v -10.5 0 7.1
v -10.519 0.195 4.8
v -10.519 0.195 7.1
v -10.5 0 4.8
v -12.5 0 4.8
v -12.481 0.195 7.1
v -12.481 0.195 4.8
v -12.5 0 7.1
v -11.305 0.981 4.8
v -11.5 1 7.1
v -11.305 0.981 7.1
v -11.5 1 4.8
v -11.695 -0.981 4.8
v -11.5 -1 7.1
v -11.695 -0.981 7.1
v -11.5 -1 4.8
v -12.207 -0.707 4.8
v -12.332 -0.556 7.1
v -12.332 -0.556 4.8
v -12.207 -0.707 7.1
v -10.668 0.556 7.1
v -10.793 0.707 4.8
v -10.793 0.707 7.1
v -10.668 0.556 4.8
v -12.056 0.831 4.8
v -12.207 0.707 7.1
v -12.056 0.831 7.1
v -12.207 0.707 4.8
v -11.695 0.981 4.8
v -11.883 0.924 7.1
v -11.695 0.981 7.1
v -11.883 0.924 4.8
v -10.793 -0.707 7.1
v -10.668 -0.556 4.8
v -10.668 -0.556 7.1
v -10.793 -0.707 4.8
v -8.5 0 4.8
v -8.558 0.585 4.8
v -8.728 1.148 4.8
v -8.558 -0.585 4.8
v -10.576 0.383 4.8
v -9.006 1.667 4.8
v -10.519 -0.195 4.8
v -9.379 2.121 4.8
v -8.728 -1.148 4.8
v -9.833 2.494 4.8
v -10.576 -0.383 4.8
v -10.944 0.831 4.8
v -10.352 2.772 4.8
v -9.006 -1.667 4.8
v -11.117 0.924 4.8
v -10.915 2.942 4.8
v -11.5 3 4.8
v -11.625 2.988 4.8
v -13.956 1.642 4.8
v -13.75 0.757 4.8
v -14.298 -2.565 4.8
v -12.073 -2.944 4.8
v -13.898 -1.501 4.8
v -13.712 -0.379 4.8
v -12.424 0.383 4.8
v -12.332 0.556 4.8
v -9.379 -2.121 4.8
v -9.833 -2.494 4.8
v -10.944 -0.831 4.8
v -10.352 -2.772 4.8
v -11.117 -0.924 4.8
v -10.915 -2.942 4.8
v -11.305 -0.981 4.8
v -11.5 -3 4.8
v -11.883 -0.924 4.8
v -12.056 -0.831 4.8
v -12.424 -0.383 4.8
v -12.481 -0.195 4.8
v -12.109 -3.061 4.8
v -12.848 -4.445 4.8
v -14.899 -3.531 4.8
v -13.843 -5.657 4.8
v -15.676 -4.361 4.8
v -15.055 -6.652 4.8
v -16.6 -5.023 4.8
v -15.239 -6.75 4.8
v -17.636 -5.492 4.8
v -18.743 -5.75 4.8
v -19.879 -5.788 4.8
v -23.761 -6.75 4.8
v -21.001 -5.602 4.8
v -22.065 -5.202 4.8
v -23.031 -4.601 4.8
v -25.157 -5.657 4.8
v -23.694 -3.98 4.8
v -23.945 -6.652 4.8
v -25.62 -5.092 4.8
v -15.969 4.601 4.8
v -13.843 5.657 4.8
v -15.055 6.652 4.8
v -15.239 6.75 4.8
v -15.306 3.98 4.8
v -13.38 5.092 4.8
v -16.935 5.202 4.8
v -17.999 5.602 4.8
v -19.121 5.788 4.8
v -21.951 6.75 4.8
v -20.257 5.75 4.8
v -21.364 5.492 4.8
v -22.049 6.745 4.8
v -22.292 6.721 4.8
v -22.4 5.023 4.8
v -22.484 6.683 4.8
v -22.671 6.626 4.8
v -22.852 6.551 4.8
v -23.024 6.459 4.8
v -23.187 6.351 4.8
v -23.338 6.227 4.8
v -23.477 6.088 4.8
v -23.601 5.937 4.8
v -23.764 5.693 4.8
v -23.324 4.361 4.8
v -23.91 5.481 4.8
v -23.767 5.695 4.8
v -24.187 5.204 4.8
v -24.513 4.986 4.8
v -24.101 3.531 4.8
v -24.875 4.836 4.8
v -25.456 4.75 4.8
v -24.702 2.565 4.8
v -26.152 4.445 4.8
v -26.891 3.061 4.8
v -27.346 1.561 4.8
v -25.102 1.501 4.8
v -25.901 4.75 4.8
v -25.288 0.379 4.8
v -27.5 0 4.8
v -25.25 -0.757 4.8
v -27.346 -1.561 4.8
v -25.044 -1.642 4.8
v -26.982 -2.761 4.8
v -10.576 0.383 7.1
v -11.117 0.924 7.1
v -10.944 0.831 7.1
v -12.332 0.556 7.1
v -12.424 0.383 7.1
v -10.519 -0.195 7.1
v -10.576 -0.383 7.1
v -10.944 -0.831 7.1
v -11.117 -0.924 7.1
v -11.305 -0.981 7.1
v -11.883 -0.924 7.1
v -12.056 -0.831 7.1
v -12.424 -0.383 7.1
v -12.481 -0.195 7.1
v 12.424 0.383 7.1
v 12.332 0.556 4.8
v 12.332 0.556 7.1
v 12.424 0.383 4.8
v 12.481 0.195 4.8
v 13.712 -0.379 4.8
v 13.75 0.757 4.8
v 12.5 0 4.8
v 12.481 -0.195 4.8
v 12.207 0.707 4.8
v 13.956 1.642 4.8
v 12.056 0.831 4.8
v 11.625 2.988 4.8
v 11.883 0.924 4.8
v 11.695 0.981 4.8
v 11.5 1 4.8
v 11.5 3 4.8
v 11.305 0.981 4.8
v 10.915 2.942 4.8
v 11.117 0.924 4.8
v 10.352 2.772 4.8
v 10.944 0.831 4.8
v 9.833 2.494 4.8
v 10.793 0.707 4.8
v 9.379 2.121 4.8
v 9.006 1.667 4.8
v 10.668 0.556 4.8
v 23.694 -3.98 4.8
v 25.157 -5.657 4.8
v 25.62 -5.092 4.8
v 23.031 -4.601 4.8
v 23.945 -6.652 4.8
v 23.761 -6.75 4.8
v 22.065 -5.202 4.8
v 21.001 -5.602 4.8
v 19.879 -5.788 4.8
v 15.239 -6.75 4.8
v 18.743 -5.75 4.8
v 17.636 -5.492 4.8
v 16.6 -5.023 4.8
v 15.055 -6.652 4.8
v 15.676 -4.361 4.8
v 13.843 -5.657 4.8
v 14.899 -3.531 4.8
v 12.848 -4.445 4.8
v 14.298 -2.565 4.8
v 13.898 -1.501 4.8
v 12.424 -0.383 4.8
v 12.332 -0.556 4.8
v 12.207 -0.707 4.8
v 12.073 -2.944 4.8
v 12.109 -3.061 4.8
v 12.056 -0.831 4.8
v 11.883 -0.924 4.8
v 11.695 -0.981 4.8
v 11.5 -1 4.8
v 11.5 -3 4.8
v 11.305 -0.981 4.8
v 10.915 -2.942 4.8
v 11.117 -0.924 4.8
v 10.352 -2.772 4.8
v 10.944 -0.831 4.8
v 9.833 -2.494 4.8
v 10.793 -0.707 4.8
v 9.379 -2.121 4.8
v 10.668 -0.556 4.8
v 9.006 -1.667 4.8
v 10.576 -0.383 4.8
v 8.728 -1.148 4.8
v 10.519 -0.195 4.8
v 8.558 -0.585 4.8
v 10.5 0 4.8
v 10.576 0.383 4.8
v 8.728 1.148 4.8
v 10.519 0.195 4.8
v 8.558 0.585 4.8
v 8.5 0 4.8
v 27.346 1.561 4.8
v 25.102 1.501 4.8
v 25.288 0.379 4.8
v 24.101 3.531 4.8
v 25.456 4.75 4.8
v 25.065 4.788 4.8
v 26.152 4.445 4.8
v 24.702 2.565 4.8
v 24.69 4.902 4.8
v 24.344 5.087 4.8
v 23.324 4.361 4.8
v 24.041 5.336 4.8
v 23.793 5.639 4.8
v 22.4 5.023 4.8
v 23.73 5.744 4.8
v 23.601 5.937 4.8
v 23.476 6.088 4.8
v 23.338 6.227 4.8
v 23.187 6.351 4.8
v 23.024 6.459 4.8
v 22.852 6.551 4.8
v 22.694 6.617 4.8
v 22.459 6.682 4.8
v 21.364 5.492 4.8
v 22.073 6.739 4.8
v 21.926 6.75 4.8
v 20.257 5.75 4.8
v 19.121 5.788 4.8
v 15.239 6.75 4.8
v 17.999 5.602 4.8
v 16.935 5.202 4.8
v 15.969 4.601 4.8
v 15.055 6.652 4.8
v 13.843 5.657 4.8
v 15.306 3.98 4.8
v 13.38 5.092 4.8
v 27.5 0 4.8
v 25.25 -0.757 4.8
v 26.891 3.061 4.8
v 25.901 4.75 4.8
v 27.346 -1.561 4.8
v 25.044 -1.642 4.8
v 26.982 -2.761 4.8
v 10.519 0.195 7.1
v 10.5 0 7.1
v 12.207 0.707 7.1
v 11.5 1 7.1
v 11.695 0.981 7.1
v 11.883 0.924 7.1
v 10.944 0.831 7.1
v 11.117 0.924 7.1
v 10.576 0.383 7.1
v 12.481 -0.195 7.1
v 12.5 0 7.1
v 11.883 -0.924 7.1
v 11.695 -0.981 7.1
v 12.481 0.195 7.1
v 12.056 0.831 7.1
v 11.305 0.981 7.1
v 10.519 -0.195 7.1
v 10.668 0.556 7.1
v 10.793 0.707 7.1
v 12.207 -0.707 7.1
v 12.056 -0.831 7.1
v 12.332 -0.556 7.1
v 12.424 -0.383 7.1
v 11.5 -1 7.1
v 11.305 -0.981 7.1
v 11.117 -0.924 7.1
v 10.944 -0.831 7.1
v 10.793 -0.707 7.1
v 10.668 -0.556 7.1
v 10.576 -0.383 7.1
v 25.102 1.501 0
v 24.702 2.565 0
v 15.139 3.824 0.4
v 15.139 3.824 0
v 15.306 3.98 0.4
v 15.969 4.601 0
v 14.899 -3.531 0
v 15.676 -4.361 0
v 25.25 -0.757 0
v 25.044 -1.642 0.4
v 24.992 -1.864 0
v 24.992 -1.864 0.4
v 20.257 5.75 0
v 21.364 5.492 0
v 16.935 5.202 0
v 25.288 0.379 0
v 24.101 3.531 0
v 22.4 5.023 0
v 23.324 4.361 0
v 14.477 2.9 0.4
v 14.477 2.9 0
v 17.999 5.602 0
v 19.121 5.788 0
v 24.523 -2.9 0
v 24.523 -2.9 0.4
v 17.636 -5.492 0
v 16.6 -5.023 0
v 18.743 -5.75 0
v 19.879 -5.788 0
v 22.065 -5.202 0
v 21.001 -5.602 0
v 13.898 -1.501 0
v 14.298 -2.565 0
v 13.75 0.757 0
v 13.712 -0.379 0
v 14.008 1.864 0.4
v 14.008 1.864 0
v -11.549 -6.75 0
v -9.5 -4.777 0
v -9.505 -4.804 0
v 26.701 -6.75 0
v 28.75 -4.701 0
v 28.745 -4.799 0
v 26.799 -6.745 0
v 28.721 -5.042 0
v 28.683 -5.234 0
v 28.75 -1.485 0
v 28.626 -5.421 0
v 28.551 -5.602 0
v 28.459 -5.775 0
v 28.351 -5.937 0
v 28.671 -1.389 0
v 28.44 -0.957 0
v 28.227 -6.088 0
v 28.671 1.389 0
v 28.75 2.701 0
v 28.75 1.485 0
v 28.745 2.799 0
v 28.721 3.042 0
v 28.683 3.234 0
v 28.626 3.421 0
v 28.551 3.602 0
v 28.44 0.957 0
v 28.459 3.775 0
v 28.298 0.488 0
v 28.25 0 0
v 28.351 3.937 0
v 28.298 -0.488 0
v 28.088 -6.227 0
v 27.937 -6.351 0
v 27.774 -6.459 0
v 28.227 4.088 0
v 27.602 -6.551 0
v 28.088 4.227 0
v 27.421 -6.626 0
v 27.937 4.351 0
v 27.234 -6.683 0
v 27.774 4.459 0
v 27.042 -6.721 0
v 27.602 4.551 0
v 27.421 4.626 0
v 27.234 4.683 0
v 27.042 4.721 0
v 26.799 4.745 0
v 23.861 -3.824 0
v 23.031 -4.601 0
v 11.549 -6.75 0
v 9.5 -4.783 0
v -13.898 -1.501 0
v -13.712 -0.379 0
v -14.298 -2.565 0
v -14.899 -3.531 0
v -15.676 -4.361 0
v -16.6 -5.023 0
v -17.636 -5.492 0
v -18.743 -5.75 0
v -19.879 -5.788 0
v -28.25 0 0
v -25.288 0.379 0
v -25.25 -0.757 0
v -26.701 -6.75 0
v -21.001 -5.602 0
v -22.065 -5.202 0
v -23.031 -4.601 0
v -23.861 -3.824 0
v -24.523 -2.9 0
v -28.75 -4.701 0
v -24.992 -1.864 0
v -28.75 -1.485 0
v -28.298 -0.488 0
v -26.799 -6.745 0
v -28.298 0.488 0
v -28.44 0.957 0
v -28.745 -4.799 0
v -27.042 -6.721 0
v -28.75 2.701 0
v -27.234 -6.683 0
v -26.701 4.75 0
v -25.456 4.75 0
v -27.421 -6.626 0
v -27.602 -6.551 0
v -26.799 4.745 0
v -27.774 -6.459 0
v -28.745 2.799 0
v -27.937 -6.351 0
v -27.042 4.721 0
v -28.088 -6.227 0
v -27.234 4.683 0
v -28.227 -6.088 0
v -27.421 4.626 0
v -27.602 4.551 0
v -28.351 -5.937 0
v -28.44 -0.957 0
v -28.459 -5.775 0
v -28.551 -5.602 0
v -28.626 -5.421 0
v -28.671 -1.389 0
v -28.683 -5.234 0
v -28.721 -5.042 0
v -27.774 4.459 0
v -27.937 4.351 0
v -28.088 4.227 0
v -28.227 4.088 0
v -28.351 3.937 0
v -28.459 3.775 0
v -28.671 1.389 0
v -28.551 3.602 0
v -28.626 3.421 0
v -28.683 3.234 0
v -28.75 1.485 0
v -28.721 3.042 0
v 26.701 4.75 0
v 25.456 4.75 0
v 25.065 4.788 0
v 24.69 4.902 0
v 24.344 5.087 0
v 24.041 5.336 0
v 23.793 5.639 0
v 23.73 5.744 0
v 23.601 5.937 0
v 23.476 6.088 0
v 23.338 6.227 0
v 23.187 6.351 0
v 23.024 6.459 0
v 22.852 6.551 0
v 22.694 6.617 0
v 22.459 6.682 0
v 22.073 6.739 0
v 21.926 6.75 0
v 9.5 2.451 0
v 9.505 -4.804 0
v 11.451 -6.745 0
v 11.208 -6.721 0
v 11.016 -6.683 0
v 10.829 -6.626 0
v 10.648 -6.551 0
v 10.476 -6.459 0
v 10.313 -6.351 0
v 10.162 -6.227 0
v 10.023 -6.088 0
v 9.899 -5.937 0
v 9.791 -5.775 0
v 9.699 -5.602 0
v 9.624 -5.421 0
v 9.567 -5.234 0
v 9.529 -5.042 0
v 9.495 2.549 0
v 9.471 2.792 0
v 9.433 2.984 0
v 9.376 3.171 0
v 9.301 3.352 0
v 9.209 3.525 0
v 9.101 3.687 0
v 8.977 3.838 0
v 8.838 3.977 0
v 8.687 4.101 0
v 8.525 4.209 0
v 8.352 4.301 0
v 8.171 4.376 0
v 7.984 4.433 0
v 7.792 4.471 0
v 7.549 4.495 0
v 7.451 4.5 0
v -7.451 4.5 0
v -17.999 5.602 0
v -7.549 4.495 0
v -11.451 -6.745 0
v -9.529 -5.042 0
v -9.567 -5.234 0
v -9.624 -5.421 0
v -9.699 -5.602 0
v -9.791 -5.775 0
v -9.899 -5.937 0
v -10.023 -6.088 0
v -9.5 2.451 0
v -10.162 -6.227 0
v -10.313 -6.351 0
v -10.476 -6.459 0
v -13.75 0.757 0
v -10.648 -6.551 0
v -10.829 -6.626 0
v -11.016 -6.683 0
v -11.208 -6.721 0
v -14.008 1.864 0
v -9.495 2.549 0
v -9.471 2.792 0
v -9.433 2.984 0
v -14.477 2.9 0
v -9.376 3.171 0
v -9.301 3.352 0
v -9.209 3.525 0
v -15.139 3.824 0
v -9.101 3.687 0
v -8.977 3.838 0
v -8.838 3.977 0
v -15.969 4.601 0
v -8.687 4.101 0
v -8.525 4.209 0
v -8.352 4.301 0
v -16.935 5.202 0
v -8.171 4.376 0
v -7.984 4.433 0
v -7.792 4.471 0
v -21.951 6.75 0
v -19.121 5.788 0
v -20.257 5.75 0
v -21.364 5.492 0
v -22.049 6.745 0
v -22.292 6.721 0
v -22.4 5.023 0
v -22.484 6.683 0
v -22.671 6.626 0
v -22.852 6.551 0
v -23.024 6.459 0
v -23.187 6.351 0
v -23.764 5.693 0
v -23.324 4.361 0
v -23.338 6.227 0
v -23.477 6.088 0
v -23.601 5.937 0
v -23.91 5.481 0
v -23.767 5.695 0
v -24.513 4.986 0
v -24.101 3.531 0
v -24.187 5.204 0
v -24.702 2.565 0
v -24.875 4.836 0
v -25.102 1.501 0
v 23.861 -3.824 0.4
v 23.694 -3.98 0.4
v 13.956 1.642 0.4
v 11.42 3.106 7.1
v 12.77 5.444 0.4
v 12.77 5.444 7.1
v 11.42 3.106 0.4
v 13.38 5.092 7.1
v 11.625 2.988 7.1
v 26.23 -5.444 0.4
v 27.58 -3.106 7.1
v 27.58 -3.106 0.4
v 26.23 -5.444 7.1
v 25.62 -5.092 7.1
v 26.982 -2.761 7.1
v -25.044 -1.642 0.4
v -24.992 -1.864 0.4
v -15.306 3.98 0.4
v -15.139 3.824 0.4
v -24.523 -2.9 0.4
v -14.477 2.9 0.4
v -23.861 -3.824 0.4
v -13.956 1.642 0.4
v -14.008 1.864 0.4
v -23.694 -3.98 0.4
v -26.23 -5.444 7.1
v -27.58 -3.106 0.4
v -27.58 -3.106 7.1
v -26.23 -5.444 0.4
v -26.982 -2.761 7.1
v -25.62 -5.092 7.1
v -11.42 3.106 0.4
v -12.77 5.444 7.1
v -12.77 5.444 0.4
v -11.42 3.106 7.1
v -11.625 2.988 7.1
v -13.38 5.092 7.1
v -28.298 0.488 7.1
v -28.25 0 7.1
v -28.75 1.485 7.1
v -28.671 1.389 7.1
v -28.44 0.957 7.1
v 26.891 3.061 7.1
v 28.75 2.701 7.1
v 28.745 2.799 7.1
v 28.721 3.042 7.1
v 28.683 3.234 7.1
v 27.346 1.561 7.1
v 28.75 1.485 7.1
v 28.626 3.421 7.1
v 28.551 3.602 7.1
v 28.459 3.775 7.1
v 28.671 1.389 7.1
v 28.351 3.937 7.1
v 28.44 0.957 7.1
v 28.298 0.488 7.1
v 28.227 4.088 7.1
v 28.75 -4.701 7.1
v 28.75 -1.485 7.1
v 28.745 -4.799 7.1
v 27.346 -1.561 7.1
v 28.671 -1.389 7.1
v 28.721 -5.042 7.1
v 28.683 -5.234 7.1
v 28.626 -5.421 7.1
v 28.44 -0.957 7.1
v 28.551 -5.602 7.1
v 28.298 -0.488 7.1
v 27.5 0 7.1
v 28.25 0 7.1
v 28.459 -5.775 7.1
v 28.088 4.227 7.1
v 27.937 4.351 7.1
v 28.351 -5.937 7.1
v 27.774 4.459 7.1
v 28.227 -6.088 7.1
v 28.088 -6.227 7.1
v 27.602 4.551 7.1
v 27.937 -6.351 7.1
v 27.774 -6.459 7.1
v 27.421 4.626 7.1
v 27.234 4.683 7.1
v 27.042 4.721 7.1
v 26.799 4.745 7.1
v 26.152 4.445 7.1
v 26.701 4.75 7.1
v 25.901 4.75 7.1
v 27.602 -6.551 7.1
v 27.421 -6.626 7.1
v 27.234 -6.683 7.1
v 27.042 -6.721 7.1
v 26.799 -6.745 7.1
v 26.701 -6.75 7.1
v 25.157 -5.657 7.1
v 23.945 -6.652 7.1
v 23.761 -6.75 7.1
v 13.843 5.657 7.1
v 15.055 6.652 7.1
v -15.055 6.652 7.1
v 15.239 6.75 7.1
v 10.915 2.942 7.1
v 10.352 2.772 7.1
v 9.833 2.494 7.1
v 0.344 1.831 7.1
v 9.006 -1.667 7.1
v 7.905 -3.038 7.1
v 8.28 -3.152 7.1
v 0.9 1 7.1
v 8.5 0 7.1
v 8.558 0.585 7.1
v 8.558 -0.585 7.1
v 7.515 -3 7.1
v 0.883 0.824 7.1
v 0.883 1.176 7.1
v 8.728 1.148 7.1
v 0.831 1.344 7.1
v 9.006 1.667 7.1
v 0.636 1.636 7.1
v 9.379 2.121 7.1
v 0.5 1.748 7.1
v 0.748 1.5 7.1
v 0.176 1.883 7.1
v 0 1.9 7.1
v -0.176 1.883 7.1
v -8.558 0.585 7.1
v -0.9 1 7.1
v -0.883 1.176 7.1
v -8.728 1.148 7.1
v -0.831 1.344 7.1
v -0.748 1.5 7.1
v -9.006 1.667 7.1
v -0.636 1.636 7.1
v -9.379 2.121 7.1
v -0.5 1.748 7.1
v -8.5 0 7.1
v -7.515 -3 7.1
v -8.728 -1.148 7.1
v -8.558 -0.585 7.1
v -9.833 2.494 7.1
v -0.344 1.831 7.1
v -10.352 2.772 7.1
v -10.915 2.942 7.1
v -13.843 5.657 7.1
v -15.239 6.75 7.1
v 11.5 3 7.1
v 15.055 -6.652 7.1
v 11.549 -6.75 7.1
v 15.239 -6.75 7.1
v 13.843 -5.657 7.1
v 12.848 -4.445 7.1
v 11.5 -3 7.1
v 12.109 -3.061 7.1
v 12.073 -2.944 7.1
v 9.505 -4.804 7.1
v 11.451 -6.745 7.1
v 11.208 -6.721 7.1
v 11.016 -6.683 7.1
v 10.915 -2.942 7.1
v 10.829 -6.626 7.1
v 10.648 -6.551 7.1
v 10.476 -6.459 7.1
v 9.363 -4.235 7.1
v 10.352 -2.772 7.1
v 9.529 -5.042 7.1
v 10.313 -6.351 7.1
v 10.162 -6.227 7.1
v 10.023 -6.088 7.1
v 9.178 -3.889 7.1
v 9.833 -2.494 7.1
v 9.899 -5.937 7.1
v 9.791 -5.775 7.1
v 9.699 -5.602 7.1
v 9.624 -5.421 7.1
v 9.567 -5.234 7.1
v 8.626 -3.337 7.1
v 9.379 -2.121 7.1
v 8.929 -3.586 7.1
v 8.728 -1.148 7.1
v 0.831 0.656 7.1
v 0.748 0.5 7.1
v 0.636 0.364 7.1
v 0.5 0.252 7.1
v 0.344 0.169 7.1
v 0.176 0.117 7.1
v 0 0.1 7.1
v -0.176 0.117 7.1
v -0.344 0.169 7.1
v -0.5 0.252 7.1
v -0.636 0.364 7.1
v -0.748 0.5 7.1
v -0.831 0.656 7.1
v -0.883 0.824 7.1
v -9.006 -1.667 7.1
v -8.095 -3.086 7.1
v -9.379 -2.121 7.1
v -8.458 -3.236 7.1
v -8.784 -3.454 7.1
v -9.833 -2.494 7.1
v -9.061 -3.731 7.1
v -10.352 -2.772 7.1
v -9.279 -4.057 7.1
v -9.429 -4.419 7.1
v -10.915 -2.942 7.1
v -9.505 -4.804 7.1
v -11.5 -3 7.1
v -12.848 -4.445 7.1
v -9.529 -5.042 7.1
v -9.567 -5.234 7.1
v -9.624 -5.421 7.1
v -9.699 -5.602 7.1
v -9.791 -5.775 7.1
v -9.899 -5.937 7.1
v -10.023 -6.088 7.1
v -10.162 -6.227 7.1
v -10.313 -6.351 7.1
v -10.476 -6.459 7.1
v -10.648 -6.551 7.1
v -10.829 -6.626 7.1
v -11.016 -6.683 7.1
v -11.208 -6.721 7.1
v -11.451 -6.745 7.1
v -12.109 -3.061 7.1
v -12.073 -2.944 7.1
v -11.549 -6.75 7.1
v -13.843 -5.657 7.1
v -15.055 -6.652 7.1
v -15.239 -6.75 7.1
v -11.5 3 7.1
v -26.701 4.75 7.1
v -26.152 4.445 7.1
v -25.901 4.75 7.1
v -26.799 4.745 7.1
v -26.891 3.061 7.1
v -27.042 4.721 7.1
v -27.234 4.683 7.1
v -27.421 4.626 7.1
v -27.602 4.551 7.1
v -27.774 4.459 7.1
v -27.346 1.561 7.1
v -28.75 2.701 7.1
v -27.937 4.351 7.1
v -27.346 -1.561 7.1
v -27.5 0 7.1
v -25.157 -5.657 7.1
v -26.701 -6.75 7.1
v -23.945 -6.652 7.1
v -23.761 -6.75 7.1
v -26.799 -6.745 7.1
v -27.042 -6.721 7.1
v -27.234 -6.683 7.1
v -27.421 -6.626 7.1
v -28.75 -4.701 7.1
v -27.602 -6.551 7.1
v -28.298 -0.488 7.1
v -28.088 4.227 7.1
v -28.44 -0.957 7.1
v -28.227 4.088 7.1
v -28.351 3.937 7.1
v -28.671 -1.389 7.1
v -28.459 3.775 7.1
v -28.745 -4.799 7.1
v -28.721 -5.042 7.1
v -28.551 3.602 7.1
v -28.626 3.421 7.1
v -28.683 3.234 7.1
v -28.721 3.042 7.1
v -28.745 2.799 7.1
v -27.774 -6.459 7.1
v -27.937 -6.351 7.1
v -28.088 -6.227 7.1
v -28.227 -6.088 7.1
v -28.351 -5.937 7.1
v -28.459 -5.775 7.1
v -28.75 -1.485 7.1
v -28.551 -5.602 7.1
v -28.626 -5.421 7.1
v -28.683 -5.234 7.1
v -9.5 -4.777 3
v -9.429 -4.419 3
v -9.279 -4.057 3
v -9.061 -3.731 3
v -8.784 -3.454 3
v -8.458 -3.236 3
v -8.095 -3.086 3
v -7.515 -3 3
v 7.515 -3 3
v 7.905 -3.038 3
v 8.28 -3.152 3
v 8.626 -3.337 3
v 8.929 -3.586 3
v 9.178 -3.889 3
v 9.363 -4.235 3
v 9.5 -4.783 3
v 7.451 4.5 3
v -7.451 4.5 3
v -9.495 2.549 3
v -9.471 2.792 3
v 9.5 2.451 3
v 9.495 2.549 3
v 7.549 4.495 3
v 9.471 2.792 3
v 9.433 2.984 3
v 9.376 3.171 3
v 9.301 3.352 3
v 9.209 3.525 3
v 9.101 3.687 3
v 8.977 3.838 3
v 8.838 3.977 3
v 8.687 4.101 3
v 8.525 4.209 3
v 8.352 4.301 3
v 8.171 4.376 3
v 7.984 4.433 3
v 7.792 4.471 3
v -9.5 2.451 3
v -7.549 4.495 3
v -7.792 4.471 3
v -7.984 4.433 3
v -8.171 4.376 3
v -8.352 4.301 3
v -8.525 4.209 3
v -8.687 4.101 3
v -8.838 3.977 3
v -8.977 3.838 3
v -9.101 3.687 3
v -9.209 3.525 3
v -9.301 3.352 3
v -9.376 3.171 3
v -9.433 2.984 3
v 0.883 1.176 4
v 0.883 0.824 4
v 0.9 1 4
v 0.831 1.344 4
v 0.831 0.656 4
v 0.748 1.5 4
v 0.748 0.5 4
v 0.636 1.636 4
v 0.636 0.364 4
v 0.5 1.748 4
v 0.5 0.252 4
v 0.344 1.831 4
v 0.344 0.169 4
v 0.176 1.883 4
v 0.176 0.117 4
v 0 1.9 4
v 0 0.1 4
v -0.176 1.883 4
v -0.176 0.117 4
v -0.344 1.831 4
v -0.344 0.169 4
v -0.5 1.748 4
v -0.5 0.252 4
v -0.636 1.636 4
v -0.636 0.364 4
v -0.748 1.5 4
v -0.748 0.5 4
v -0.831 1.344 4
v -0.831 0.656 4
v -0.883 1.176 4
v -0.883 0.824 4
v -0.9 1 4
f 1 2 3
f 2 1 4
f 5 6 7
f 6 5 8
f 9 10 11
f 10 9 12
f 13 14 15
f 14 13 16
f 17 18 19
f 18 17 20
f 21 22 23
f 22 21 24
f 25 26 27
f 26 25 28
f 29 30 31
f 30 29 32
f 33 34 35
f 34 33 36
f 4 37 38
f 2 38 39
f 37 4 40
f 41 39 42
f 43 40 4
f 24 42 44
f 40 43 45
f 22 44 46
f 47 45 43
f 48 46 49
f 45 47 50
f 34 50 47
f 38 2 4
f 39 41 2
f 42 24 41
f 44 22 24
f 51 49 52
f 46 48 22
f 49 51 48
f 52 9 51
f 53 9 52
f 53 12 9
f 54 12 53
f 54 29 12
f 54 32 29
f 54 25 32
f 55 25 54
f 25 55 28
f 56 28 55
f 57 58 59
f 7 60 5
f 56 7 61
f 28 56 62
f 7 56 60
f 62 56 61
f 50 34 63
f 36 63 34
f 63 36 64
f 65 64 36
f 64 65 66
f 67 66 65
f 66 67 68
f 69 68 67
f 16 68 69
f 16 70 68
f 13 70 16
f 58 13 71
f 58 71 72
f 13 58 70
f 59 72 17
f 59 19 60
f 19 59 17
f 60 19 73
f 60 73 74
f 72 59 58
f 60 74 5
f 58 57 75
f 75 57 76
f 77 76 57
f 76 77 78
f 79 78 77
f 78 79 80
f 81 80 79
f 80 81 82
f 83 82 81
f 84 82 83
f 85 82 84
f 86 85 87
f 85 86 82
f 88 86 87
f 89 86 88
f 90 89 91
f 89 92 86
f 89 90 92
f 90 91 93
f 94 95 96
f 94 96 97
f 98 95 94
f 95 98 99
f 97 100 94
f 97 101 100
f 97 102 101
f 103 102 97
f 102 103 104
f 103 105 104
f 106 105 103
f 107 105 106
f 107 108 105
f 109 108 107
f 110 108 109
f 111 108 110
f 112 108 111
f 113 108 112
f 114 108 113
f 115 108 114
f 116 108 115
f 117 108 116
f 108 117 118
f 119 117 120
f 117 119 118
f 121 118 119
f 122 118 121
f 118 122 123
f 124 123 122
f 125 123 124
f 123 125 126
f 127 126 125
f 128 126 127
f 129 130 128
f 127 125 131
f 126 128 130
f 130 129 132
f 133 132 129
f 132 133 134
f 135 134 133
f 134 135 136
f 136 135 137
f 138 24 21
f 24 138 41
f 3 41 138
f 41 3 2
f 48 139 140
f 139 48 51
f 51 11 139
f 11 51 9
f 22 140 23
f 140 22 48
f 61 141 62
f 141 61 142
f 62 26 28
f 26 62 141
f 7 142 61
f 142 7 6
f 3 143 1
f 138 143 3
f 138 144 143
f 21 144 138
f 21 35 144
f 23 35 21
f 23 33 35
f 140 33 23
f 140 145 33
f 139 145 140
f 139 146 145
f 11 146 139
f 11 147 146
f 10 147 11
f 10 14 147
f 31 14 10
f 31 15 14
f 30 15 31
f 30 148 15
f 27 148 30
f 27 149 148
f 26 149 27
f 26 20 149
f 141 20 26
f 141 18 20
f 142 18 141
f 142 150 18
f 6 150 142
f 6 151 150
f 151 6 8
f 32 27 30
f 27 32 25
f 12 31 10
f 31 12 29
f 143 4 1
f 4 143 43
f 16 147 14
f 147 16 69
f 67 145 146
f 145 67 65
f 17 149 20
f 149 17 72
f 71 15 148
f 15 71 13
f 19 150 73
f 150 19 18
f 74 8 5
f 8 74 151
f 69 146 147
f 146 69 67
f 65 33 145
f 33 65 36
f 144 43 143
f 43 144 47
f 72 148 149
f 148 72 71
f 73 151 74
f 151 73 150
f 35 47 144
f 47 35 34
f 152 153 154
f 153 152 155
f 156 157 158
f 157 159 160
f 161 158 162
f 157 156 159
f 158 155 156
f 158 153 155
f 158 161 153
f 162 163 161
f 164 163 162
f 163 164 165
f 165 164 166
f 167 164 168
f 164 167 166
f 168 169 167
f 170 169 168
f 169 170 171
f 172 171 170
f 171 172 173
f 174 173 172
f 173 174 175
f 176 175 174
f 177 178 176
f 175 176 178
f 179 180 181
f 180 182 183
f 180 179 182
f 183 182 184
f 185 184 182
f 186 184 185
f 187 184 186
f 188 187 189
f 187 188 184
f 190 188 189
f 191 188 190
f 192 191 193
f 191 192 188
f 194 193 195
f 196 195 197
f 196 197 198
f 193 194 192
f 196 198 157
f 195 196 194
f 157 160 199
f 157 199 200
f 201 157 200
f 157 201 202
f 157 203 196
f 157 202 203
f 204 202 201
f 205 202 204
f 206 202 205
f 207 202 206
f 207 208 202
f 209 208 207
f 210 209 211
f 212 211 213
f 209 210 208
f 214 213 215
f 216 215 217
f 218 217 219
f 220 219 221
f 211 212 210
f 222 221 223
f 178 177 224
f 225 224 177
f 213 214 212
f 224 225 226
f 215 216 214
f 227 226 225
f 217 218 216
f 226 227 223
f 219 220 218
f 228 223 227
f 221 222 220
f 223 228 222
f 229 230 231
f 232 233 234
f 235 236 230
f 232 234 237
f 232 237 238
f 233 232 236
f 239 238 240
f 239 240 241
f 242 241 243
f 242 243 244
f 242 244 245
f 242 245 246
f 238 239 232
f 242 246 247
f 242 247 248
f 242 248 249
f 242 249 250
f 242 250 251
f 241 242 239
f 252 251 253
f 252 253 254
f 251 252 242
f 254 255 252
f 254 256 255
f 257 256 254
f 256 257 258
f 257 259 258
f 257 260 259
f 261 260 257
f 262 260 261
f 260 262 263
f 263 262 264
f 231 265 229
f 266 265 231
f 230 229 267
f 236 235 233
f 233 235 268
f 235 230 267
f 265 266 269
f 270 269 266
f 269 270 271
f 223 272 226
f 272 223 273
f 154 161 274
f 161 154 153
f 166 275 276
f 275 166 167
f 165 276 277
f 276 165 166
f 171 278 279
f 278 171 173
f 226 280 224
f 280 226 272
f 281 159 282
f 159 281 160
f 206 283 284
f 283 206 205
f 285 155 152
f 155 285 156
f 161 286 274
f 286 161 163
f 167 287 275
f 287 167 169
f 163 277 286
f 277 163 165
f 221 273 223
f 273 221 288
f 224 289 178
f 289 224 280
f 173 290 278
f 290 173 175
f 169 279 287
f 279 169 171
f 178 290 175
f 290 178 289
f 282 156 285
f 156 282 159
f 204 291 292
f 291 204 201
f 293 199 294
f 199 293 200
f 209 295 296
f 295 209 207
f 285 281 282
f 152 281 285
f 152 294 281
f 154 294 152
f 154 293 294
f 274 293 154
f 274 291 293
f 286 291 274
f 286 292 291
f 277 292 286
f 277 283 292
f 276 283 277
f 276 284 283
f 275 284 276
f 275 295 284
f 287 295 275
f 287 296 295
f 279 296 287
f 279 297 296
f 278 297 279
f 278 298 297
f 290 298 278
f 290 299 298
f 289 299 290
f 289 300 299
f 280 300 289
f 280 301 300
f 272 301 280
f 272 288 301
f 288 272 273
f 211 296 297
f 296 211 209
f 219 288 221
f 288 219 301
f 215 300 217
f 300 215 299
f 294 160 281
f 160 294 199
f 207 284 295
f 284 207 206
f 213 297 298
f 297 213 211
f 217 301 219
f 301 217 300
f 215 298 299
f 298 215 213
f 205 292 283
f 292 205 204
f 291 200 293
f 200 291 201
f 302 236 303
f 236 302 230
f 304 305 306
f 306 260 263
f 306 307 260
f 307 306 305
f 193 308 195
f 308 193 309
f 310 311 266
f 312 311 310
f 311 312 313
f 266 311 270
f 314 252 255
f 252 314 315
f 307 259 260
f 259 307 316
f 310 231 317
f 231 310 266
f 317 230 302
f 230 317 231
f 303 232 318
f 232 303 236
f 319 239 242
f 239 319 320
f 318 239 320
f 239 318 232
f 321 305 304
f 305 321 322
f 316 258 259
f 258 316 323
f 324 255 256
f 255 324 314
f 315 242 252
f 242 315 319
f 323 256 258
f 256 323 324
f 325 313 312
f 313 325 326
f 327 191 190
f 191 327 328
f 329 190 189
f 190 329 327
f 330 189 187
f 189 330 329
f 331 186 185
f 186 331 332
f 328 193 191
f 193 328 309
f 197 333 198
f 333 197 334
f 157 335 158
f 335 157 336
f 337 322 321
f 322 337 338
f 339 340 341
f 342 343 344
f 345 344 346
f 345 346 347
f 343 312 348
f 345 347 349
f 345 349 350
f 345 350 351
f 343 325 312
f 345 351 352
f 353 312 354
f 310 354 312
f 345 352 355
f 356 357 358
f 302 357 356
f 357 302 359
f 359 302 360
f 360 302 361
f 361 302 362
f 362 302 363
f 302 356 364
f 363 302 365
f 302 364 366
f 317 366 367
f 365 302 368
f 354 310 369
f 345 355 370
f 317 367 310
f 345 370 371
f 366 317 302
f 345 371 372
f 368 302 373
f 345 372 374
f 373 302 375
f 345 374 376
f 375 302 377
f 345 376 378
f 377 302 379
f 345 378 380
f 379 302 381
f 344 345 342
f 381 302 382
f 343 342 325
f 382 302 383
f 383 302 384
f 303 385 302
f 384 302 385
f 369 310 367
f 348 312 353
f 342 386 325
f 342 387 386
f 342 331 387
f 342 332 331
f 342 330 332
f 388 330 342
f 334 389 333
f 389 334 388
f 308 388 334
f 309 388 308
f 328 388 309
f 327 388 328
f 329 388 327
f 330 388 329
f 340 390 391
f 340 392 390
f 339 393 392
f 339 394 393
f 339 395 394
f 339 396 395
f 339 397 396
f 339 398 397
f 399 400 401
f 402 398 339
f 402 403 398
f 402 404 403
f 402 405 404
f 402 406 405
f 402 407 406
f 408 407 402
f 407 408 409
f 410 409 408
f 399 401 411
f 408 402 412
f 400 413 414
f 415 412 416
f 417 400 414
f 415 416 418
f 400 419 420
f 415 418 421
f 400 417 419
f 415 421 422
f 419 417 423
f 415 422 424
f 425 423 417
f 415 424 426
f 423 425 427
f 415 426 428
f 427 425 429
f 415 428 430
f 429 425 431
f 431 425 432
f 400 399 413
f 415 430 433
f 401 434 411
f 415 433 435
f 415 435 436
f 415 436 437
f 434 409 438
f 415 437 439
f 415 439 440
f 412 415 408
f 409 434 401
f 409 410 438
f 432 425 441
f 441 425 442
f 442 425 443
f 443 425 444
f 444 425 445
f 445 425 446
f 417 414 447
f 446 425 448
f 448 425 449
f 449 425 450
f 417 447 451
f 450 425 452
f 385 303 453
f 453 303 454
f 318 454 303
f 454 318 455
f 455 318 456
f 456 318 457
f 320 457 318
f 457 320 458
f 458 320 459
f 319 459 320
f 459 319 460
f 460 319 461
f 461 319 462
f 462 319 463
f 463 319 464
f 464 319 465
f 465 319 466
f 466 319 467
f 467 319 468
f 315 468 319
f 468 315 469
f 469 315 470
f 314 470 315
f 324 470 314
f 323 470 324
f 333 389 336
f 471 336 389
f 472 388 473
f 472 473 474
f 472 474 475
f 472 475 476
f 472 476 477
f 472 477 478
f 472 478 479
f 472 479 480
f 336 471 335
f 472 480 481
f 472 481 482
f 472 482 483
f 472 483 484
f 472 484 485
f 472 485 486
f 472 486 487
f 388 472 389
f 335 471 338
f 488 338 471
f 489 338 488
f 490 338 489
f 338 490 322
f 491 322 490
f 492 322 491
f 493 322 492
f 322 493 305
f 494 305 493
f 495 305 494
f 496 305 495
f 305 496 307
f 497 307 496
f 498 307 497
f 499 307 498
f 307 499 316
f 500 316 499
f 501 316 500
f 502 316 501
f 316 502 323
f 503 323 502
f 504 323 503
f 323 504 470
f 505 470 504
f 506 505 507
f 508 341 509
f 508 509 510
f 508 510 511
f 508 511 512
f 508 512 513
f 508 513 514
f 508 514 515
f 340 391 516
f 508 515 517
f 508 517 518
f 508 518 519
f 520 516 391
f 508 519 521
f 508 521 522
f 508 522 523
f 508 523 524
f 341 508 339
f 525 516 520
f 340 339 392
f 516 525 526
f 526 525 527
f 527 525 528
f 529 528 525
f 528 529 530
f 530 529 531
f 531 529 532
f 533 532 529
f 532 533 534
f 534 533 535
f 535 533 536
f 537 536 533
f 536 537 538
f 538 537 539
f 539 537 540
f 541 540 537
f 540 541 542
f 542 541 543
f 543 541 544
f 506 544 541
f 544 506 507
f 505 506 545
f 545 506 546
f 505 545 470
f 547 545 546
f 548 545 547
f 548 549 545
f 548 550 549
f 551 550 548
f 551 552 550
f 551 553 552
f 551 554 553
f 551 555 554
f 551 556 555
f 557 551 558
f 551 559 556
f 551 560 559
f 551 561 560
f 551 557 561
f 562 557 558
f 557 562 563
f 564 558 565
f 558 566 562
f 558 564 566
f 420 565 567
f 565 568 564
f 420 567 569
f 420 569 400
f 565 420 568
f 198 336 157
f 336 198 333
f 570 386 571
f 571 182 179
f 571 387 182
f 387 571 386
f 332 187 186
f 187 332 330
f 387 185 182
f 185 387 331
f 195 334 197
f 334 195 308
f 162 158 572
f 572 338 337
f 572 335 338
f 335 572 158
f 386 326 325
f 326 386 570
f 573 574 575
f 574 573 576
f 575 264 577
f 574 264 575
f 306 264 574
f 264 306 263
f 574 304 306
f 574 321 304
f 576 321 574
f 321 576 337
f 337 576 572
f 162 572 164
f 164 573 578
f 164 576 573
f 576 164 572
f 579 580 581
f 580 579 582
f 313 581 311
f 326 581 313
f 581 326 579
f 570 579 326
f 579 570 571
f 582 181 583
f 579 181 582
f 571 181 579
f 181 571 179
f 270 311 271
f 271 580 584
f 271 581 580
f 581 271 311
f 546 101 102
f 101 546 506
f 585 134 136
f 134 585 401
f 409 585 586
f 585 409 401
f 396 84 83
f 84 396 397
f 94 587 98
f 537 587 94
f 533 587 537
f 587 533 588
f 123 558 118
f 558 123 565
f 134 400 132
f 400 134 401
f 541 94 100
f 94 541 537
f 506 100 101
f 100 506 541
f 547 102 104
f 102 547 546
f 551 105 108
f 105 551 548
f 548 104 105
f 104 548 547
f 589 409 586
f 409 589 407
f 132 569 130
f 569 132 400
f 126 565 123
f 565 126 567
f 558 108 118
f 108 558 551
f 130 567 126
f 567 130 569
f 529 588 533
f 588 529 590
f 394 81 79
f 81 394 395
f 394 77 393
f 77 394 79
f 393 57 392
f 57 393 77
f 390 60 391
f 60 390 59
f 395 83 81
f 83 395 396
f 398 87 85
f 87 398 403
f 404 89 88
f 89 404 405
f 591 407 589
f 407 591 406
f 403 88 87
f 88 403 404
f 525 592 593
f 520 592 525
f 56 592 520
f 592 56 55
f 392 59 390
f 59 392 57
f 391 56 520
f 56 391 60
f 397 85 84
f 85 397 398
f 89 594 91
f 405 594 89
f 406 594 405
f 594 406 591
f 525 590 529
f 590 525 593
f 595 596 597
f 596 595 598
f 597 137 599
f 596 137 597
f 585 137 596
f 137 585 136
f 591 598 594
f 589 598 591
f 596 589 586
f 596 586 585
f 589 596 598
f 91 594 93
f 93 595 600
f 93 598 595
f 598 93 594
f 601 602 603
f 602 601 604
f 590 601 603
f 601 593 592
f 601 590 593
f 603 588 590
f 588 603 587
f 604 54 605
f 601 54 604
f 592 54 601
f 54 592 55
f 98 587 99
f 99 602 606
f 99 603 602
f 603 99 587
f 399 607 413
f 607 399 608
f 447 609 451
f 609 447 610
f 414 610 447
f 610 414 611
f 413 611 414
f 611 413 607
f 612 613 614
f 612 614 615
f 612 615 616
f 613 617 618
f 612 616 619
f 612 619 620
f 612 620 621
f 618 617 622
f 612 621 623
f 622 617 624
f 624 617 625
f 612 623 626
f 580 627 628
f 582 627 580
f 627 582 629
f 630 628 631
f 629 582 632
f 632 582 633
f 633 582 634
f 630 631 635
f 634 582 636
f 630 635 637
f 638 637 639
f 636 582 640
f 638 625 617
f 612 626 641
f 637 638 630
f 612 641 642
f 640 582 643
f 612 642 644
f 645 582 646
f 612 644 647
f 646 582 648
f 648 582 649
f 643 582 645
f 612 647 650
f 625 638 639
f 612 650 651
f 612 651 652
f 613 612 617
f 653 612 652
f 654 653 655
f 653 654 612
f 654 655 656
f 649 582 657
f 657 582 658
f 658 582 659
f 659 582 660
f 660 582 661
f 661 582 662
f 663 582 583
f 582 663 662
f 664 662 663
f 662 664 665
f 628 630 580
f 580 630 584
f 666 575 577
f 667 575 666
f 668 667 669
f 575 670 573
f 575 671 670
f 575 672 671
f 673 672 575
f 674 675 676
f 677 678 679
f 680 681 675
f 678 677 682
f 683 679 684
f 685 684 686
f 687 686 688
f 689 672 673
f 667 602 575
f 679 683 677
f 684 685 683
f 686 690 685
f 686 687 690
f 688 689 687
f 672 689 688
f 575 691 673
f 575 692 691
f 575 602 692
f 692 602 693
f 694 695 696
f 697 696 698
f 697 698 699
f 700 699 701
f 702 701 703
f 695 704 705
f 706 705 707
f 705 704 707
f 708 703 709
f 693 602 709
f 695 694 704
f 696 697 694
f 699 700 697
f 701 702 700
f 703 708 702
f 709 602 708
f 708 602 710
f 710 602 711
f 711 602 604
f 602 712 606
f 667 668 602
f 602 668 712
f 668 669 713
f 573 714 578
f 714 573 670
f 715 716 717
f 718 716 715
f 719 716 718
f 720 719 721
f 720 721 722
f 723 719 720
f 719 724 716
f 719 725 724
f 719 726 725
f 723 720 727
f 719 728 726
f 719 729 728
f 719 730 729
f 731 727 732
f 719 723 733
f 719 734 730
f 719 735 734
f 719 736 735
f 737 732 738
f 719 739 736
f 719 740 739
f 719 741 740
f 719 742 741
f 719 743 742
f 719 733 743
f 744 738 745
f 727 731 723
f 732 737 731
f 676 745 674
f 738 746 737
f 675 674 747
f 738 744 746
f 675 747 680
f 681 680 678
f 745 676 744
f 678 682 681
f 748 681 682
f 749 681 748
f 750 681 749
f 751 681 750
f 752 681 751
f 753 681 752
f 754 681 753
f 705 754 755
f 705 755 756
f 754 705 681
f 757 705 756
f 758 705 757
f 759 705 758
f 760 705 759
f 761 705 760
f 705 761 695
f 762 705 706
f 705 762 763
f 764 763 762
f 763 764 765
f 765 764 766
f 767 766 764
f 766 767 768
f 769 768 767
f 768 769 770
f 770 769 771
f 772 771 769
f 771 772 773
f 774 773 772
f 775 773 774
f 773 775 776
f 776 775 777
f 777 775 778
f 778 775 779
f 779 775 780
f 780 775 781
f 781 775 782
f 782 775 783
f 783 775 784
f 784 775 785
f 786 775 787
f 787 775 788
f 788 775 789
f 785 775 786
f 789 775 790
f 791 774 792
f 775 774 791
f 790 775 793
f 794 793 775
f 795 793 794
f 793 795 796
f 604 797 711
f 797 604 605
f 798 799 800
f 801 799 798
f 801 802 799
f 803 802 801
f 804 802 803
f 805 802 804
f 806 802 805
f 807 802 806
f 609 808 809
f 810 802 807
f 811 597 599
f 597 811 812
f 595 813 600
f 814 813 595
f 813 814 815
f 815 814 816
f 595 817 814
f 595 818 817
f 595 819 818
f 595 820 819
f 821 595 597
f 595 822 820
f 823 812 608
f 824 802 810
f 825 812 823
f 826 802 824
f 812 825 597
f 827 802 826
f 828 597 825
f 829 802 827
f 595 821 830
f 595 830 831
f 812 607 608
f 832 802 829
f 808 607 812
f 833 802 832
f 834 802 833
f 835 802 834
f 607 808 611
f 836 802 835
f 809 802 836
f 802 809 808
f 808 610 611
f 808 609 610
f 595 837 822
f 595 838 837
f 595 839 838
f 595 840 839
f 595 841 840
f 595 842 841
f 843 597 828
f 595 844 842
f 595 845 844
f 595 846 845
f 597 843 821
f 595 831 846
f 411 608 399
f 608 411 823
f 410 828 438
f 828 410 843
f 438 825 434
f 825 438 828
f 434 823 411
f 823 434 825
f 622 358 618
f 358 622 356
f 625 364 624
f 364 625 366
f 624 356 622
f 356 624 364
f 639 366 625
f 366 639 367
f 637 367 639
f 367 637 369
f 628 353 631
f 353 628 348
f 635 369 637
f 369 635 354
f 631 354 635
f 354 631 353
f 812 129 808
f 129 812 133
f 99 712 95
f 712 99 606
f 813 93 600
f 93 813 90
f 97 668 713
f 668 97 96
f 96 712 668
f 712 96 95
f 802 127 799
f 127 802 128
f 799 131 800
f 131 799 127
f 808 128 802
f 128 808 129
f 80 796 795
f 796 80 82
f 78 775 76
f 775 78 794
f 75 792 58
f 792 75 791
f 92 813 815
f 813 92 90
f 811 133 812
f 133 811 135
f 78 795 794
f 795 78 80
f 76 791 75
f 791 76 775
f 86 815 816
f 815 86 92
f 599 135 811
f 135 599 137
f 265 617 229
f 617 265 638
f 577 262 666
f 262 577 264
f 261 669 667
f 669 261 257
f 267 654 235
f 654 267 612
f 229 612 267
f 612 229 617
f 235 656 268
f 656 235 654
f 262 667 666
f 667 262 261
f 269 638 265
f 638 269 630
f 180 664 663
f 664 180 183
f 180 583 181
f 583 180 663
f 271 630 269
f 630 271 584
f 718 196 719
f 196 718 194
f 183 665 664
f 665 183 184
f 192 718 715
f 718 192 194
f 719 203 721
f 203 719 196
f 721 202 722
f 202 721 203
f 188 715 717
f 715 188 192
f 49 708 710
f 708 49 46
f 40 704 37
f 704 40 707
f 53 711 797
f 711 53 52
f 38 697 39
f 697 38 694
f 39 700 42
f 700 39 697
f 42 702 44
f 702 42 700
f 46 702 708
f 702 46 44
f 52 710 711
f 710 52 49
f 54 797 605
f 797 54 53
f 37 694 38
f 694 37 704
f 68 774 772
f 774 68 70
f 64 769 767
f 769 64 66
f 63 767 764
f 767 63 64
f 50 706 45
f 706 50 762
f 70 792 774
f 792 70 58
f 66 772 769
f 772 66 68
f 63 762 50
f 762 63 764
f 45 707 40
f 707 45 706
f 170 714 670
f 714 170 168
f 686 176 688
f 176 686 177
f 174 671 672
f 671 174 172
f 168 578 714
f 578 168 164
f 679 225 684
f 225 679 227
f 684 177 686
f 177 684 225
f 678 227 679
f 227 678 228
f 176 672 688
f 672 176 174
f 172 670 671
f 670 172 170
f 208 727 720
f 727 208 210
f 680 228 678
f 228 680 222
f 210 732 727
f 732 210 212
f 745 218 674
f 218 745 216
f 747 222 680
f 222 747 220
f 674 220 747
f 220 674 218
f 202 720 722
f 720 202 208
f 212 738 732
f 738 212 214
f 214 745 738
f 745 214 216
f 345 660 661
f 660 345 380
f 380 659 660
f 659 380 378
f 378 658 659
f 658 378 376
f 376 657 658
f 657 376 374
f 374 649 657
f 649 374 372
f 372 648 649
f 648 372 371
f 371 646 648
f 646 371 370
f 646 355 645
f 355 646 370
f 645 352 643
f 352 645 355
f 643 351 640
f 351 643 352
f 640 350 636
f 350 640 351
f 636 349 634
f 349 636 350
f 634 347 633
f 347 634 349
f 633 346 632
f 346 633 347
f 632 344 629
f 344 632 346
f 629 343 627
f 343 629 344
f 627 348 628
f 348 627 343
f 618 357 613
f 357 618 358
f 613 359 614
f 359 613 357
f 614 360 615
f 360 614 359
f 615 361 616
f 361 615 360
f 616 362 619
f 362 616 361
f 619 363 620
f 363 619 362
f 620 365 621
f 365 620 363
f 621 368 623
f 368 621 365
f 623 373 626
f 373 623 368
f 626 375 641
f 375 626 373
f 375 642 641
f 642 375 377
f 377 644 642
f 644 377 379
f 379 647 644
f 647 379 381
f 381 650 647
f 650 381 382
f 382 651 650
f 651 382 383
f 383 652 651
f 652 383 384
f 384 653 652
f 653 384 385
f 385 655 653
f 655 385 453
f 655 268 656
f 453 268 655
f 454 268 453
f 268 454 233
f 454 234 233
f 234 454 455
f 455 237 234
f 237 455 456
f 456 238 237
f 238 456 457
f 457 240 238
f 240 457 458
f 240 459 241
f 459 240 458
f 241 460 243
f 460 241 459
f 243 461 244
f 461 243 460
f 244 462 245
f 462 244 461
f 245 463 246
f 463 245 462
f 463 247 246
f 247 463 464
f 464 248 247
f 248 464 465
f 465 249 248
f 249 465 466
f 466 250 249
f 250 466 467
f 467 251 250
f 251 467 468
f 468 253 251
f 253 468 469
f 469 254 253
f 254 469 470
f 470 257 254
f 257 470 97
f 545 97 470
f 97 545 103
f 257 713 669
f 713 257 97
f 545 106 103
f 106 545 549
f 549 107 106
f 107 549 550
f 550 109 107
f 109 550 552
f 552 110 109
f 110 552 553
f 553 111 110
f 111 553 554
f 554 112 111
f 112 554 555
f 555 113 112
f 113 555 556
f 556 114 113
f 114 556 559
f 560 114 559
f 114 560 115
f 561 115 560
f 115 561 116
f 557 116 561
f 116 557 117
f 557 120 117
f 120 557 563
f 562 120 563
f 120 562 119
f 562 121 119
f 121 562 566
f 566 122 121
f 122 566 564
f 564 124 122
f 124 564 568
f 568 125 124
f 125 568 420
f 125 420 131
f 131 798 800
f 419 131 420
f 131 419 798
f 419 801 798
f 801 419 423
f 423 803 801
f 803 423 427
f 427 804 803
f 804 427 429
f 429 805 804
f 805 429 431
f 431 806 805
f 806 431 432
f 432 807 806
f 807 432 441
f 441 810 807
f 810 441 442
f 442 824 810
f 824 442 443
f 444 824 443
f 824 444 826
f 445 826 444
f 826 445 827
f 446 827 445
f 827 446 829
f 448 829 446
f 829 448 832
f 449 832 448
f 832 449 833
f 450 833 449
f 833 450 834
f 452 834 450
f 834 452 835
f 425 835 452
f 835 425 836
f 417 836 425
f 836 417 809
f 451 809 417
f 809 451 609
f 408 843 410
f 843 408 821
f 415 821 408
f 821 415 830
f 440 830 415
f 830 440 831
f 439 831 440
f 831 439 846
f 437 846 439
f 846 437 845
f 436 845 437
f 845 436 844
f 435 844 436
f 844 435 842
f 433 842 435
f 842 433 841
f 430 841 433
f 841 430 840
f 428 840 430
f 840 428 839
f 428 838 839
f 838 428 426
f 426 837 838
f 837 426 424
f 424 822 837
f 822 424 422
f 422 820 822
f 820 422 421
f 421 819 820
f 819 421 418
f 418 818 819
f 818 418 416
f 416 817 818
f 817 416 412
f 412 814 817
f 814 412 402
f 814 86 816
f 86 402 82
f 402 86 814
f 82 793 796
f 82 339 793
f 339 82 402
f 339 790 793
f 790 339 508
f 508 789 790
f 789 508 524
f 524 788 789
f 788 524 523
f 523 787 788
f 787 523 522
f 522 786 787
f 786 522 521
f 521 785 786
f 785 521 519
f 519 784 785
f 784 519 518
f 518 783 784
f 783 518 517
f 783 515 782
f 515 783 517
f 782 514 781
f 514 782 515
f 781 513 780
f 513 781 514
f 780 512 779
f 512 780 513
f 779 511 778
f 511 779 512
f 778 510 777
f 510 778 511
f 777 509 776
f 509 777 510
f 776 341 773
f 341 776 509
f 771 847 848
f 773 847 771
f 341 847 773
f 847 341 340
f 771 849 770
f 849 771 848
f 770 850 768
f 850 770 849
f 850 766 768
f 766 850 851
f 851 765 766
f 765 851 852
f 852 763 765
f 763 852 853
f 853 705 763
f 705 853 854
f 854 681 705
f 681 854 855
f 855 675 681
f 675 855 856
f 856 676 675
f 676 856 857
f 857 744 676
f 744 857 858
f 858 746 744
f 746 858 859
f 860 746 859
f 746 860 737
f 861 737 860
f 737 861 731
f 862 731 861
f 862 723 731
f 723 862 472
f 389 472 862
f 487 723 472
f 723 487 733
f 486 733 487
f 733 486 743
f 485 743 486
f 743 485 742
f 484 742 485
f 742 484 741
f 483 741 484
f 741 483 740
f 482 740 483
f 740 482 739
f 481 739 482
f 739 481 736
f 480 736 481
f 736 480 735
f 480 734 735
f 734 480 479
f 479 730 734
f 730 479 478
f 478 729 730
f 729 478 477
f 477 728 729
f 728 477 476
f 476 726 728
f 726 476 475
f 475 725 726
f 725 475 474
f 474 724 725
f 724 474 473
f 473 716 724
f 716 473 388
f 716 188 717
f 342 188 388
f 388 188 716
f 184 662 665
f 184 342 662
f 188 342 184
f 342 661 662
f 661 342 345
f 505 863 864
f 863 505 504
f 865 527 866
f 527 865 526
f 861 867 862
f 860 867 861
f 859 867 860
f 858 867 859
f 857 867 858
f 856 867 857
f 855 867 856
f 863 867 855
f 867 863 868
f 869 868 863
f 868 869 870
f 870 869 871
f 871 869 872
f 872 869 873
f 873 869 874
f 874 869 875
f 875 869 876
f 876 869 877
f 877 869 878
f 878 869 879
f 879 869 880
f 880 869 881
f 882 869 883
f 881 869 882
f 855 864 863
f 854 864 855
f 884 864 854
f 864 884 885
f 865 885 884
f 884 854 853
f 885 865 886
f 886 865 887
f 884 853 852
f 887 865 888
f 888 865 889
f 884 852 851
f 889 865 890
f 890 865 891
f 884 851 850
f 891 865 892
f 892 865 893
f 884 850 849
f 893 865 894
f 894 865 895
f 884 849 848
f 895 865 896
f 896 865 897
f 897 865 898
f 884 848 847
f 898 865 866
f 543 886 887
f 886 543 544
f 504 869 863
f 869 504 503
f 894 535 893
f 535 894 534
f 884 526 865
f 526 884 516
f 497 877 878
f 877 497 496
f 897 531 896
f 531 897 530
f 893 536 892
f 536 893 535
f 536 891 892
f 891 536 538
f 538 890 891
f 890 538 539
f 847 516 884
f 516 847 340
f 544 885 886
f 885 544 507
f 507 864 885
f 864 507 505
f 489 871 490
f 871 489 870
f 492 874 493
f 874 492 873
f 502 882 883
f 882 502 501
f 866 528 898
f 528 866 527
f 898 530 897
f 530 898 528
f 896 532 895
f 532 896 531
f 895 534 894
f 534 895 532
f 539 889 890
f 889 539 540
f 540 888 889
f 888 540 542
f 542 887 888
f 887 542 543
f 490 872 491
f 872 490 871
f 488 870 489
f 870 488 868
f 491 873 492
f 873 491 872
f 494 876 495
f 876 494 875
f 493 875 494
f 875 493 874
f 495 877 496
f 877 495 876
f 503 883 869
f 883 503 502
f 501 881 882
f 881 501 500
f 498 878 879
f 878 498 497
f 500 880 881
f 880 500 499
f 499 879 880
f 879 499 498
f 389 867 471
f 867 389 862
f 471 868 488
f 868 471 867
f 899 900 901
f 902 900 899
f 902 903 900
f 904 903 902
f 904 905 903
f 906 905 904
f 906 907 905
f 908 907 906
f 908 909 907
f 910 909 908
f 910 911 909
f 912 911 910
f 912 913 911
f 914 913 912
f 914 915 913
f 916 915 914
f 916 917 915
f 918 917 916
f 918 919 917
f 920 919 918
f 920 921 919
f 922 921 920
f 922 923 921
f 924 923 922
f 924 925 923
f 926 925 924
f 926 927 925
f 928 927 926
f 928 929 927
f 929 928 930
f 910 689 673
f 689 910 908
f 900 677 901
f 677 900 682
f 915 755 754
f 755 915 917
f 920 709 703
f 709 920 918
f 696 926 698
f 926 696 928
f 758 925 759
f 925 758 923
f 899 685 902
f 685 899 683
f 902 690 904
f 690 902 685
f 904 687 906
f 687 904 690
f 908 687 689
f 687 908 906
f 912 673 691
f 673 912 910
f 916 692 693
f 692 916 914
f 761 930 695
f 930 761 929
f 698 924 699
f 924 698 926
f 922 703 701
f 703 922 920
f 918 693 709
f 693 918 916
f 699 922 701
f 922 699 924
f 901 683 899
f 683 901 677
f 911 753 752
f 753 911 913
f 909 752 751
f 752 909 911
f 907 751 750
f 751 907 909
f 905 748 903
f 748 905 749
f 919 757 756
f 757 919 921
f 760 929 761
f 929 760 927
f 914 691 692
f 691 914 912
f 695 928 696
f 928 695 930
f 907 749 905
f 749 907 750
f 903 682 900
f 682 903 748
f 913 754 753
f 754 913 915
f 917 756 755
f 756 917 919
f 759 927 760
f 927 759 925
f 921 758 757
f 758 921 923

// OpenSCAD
$fn=32;

// DMG Rear Body Dimensions
// Above Battery Compartment

// Width measured 58mm 
OuterW=57.5;
// W
LatchW=19;
// Detpth measured .7mm
latchz=1;

//Silicone thickness
silz=2.3;
//Sil diameter
sild=16;

//side post -y from notch bottom
py=5;
// post diameter
pd=5; //measured 4mm, oversizing.

module post_removal() {
    for(x=[-OuterW/2-2:OuterW+4:OuterW/2+2]) {
        translate([x,0,0])
        cylinder(d=pd,h=ExtD+silz);
    }
}


module lil_peg() {
for(i=[-DualButtonSep/2+sild/2:DualButtonSep-sild:DualButtonSep/2-sild/2]) {
    translate([i,0,ExtD])
    cylinder(d=2,h=silz);
}
}
//sil_cut();
module sil_cut() {
for(i=[-DualButtonSep/2:DualButtonSep:DualButtonSep/2]) {
    translate([i,0,ExtD])
    cylinder(d=sild,h=silz);
}

for(i=[-DualButtonSep/2+sild/2:DualButtonSep-sild:DualButtonSep/2-sild/2]) {
    translate([i,0,ExtD])
    cylinder(d=6,h=silz);
}
}

module side_supports(){
    hull() {
        translate([OuterW/2-supd/2,-supd/2-.5,ExtD]){
    translate([0,NotchH/2-2,0])
    cylinder(d=supd, h=silz);
    translate([0,-NotchH/2+2,0])
    cylinder(d=supd, h=silz);
        }
    }
    hull() {
        translate([-OuterW/2+supd/2,-supd/2-.5,ExtD]){
    translate([0,NotchH/2-2,0])
    cylinder(d=supd, h=silz);
    translate([0,-NotchH/2+2,0])
    cylinder(d=supd, h=silz);
        }
    }

}

// H measured at 11.8mm
NotchH=11.5;
// Thickness measured 2.2mm
notchy=2;

// DMG Button Dimensions
// H
ButtonH=10;
// R
ButtonR=5.8;

// DMG Button Flag
// H
FlagH=ButtonH;
// W
FlagW=2.7;
// D
FlagD=5.5;

supd=1.2;

// Button Extension
// H
ExtH=14;
// W
ExtW=29.5;
// D
ExtD=3+1.8;
// Lip
ExtLip=6;

DualButtonSep=39;
//
//translate([-8.5-OuterW/2,18.1,-2])
//rotate([90,0,0])
//import("gbz_KiteBracket.stl");

module backbracketbody2d() {
    difference() {
    union(){
        translate([-OuterW/2,-NotchH/2,0])
        square([OuterW,NotchH]);
        translate([-48/2,NotchH/2])
        square([48,notchy]);
    }
    translate([-LatchW/2,-NotchH/2])
    square([LatchW, 3.75]);
    }
}

module backbracketbody() {
linear_extrude(height=ExtD+silz) offset(-2) offset(2) offset(2) offset(-2)backbracketbody2d();
}

//rotate([0,180,0])
final_part();
module final_part() {
    lil_peg();
    difference(){
    union() {
    //translate([-OuterW/2,-ExtH/2,0])
    //linear_extrude(height=ExtD) offset(2) offset(-2) square([OuterW,ExtH]);

    translate([0,-1,0])
    backbracketbody();
//    side_supports();

//    translate([0,2.75,ExtD])
    //#cube([LatchW, ExtH, latchz], center=true);
//    cheese(LatchW, ExtH-2.75, silz, 2);

//    translate([DualButtonSep/2,7.5,ExtD])    
//    cylinder(d=1.8, h=2.4);
//    translate([-DualButtonSep/2,7.5,ExtD])    
//    cylinder(d=1.8, h=2.4);
    }

    //translate([OuterW/2-10,0,0])
    translate([DualButtonSep/2,0,0])
    rotate([0,0,-30])
    dmgbutton();

    translate([-DualButtonSep/2,0,0])
    rotate([0,0,30])
    dmgbutton();
    post_removal();
    sil_cut();
    //translate([0,0,latchz/2])
    //cube([LatchW, ExtH, latchz], center=true);
    translate([0,-2.5,0])
    cheese(LatchW, ExtH, latchz*3, 2);

    //screw hole
    translate([0,1,4])
    cylinder(d=1.8,h=ExtD+silz);
    }
}

//Button
module dmgbutton(x,y) {
translate([x,y,0])    
    union() {
        cylinder(h=ButtonH, r=ButtonR); 
        translate([-ButtonR,0,FlagH/2+.4])
            cube([FlagD,FlagW,FlagH], center=true);
            translate([ButtonR,0,FlagH/2+.4])
            cube([FlagD,FlagW,FlagH], center=true);
    }
}

module cheese(x,y,z,r) {
linear_extrude(height=z) offset(-r) offset(r) offset(r) offset(-r)
    square([x,y], center=true);
}
